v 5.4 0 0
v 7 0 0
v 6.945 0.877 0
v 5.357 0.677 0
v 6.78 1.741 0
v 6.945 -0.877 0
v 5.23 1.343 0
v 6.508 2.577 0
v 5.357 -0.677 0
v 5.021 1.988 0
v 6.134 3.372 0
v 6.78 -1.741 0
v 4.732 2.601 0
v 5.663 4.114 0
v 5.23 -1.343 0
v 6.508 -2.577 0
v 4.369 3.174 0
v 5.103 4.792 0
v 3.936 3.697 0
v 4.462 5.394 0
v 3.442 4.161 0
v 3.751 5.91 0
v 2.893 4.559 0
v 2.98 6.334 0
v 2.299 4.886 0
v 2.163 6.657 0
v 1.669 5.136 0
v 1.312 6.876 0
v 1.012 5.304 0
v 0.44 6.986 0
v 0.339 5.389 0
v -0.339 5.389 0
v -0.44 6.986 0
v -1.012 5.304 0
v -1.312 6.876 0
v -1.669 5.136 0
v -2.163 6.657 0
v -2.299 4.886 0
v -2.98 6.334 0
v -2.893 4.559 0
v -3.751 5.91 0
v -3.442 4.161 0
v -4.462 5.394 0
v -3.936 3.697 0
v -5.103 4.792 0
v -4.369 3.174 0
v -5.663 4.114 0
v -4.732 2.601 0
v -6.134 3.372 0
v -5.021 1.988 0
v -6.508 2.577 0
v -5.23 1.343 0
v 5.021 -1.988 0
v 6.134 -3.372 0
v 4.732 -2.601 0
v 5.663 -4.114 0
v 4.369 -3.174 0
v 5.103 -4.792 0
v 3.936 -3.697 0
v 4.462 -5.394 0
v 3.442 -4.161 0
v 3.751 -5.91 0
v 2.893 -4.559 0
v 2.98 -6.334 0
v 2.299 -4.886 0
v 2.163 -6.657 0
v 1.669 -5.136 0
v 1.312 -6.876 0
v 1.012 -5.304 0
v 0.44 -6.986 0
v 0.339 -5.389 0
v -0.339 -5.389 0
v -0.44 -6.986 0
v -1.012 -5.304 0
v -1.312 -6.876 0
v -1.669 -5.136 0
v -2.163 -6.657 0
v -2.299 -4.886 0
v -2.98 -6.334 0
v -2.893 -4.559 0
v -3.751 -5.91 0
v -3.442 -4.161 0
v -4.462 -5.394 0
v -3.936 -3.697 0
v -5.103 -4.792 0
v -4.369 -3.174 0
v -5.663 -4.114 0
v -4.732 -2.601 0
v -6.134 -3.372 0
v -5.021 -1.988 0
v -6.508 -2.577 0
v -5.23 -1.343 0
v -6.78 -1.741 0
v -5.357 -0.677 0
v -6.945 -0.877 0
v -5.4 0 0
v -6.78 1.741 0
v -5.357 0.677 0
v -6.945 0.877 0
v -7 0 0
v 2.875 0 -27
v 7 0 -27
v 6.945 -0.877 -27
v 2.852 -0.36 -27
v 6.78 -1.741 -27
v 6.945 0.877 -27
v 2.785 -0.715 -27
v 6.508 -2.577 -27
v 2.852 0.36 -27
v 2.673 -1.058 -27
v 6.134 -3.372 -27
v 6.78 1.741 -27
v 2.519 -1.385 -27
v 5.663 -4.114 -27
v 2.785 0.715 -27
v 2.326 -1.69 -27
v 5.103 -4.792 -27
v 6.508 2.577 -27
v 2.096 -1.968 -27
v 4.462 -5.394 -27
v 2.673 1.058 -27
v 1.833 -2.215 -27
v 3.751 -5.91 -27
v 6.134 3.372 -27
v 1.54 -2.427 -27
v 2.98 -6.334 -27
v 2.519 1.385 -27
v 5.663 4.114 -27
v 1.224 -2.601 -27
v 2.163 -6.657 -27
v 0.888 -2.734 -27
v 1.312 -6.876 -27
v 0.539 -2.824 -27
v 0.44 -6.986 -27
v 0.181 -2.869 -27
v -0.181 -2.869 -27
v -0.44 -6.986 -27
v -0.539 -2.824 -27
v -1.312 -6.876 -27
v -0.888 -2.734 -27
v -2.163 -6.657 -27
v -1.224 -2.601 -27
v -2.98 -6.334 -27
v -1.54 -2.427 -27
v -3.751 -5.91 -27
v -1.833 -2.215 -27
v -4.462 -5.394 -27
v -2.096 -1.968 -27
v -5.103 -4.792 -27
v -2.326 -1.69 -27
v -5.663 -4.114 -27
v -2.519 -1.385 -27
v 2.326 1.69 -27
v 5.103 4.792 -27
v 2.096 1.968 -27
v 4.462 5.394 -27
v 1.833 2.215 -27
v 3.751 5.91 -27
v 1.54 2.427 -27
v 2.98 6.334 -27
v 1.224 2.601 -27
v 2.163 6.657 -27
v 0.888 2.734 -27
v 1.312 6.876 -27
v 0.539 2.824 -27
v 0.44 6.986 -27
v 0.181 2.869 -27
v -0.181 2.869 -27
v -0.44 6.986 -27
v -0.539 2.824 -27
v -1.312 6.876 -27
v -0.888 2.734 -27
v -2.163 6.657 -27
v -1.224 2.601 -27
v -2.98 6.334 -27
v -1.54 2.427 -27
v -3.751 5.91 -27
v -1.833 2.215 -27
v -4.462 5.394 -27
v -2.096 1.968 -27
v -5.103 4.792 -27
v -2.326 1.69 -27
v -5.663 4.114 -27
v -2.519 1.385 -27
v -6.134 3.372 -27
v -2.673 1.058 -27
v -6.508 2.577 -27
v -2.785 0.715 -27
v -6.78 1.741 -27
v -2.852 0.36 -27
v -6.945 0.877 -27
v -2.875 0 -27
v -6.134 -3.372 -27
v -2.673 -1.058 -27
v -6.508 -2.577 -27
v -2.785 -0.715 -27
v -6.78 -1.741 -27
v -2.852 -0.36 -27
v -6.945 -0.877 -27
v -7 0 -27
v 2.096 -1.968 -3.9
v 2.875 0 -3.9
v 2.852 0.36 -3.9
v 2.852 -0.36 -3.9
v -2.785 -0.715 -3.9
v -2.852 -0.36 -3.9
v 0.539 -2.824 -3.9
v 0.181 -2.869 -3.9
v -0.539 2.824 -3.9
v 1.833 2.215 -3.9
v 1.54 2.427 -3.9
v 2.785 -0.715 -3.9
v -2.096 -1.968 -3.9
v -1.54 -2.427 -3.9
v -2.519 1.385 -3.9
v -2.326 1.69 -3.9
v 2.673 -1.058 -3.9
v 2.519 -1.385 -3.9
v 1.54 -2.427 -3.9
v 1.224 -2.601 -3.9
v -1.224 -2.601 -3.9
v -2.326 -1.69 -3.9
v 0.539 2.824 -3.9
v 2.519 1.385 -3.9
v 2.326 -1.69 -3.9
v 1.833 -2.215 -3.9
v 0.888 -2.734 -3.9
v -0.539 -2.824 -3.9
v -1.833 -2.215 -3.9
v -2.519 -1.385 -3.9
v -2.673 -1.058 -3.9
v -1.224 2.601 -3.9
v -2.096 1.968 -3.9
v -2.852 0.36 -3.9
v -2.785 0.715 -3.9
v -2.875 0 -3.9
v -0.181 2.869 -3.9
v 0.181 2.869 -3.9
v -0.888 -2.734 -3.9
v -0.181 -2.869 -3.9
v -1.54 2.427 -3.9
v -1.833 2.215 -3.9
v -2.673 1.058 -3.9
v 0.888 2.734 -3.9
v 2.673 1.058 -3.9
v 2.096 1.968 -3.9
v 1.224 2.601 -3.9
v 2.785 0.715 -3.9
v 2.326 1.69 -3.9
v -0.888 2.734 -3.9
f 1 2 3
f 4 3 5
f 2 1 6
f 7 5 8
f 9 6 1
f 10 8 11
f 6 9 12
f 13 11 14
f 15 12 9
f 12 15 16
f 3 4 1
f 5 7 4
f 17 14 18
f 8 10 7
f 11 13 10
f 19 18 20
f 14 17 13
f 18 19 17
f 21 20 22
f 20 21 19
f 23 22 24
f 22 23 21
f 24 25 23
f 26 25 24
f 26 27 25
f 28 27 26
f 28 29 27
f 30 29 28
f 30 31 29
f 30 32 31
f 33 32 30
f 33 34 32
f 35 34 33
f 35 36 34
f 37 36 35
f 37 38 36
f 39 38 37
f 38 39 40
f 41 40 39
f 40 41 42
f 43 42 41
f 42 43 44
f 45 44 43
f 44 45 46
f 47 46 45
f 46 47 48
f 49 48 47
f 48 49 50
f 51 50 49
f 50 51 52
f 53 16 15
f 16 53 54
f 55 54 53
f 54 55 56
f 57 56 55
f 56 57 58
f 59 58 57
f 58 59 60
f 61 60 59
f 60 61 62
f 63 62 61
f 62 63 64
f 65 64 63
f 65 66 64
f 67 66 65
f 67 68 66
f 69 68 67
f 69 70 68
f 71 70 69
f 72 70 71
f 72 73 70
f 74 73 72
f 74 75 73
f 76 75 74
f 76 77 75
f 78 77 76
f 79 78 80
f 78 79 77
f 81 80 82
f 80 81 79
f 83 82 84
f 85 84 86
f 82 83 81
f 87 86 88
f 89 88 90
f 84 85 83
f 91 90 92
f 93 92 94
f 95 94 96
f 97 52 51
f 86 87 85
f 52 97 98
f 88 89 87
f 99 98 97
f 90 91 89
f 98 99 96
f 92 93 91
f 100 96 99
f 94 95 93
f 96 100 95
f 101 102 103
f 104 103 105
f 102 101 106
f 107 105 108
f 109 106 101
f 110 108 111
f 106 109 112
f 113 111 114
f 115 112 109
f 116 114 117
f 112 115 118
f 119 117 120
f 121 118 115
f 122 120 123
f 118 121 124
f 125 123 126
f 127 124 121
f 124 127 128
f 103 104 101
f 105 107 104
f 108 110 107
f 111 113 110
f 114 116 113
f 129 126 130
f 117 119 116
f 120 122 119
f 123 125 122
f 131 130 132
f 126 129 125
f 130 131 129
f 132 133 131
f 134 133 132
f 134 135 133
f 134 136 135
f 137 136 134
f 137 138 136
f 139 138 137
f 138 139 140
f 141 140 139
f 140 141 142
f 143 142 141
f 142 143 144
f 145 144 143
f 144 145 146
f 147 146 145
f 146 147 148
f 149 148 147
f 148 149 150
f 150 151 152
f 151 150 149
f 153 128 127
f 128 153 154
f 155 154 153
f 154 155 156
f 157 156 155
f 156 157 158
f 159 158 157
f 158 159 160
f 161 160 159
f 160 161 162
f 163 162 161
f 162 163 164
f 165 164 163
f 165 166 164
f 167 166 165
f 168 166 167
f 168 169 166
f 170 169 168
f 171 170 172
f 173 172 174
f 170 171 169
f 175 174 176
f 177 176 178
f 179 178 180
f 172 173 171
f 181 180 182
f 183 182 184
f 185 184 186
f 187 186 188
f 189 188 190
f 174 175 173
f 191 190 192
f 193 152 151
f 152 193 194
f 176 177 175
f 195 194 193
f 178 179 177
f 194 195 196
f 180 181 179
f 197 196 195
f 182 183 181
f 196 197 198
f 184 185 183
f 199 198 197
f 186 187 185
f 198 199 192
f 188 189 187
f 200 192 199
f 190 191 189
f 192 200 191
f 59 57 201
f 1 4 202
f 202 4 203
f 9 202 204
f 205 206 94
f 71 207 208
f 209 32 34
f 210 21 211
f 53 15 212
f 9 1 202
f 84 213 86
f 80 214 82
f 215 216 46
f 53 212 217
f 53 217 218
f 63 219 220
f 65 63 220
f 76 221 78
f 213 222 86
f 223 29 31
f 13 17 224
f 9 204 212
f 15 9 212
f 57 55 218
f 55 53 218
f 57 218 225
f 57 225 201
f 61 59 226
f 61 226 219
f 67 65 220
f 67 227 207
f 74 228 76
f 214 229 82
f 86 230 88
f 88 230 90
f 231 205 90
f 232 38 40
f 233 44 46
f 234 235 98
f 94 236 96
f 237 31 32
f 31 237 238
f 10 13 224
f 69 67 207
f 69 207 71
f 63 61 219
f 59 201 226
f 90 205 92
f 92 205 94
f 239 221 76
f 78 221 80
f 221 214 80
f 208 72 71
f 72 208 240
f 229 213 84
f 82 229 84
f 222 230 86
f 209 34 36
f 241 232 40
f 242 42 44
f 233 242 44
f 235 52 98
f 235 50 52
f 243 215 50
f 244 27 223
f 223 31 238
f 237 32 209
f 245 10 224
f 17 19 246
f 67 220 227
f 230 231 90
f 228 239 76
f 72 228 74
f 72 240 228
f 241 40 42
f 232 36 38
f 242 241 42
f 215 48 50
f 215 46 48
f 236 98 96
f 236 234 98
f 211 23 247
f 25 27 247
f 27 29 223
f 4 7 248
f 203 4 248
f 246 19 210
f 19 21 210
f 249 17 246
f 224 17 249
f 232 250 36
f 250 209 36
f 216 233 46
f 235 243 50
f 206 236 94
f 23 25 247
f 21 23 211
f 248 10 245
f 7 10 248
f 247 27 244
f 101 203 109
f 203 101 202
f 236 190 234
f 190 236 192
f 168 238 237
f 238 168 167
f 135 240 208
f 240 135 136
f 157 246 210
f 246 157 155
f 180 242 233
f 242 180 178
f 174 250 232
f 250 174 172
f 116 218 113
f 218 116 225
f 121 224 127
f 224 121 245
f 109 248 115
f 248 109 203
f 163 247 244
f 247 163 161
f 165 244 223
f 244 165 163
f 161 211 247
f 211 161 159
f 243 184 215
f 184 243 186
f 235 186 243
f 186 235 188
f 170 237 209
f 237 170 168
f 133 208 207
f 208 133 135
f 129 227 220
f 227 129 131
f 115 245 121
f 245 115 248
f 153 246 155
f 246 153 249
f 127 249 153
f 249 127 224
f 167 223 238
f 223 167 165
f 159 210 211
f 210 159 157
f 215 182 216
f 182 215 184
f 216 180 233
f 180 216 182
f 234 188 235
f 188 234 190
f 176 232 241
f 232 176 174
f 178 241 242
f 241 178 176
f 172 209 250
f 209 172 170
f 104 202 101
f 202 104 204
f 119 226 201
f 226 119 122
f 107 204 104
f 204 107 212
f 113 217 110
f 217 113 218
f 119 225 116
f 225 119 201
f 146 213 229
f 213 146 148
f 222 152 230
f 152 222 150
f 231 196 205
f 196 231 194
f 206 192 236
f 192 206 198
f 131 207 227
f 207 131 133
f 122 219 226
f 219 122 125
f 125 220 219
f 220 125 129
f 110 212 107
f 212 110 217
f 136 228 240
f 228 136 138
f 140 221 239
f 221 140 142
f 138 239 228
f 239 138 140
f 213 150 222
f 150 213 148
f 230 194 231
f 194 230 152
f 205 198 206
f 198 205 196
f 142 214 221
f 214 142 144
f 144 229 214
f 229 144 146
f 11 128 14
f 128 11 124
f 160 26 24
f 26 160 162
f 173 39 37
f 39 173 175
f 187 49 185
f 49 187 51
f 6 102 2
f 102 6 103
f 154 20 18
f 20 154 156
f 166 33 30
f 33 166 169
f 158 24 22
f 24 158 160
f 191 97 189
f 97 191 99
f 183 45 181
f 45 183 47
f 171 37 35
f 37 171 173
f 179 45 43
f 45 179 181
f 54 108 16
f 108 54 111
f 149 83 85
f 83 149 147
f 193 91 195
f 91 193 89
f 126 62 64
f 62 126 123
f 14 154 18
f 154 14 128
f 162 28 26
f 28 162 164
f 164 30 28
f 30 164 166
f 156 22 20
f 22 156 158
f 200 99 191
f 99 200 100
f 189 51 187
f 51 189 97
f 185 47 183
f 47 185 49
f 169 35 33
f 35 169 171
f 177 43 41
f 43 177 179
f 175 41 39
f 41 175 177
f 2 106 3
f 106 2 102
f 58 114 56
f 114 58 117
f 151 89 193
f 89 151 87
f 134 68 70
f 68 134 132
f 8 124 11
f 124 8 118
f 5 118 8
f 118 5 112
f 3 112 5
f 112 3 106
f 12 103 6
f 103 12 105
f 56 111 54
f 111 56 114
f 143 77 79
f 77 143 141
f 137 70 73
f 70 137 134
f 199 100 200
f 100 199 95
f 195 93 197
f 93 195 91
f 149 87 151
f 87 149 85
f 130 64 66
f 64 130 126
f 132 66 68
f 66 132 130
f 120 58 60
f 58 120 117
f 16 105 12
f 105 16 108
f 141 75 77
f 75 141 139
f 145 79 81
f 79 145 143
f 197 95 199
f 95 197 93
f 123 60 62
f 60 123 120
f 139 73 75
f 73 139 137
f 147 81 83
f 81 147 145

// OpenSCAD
$fn = 50;


difference() {
	union() {
		translate(v = [0, 0, -27.0000000000]) {
			cylinder(h = 27, r = 7.0000000000);
		}
	}
	union() {
		translate(v = [0, 0, 0]) {
			rotate(a = [0, 0, 0]) {
				difference() {
					union() {
						#translate(v = [0, 0, -27.0000000000]) {
							cylinder(h = 27, r = 2.6000000000);
						}
						#translate(v = [0, 0, -3.9000000000]) {
							cylinder(h = 3.9000000000, r1 = 2.8750000000, r2 = 5.4000000000);
						}
						#translate(v = [0, 0, -27.0000000000]) {
							cylinder(h = 27, r = 2.8750000000);
						}
						#translate(v = [0, 0, -27.0000000000]) {
							cylinder(h = 27, r = 2.6000000000);
						}
					}
					union();
				}
			}
		}
	}
}
